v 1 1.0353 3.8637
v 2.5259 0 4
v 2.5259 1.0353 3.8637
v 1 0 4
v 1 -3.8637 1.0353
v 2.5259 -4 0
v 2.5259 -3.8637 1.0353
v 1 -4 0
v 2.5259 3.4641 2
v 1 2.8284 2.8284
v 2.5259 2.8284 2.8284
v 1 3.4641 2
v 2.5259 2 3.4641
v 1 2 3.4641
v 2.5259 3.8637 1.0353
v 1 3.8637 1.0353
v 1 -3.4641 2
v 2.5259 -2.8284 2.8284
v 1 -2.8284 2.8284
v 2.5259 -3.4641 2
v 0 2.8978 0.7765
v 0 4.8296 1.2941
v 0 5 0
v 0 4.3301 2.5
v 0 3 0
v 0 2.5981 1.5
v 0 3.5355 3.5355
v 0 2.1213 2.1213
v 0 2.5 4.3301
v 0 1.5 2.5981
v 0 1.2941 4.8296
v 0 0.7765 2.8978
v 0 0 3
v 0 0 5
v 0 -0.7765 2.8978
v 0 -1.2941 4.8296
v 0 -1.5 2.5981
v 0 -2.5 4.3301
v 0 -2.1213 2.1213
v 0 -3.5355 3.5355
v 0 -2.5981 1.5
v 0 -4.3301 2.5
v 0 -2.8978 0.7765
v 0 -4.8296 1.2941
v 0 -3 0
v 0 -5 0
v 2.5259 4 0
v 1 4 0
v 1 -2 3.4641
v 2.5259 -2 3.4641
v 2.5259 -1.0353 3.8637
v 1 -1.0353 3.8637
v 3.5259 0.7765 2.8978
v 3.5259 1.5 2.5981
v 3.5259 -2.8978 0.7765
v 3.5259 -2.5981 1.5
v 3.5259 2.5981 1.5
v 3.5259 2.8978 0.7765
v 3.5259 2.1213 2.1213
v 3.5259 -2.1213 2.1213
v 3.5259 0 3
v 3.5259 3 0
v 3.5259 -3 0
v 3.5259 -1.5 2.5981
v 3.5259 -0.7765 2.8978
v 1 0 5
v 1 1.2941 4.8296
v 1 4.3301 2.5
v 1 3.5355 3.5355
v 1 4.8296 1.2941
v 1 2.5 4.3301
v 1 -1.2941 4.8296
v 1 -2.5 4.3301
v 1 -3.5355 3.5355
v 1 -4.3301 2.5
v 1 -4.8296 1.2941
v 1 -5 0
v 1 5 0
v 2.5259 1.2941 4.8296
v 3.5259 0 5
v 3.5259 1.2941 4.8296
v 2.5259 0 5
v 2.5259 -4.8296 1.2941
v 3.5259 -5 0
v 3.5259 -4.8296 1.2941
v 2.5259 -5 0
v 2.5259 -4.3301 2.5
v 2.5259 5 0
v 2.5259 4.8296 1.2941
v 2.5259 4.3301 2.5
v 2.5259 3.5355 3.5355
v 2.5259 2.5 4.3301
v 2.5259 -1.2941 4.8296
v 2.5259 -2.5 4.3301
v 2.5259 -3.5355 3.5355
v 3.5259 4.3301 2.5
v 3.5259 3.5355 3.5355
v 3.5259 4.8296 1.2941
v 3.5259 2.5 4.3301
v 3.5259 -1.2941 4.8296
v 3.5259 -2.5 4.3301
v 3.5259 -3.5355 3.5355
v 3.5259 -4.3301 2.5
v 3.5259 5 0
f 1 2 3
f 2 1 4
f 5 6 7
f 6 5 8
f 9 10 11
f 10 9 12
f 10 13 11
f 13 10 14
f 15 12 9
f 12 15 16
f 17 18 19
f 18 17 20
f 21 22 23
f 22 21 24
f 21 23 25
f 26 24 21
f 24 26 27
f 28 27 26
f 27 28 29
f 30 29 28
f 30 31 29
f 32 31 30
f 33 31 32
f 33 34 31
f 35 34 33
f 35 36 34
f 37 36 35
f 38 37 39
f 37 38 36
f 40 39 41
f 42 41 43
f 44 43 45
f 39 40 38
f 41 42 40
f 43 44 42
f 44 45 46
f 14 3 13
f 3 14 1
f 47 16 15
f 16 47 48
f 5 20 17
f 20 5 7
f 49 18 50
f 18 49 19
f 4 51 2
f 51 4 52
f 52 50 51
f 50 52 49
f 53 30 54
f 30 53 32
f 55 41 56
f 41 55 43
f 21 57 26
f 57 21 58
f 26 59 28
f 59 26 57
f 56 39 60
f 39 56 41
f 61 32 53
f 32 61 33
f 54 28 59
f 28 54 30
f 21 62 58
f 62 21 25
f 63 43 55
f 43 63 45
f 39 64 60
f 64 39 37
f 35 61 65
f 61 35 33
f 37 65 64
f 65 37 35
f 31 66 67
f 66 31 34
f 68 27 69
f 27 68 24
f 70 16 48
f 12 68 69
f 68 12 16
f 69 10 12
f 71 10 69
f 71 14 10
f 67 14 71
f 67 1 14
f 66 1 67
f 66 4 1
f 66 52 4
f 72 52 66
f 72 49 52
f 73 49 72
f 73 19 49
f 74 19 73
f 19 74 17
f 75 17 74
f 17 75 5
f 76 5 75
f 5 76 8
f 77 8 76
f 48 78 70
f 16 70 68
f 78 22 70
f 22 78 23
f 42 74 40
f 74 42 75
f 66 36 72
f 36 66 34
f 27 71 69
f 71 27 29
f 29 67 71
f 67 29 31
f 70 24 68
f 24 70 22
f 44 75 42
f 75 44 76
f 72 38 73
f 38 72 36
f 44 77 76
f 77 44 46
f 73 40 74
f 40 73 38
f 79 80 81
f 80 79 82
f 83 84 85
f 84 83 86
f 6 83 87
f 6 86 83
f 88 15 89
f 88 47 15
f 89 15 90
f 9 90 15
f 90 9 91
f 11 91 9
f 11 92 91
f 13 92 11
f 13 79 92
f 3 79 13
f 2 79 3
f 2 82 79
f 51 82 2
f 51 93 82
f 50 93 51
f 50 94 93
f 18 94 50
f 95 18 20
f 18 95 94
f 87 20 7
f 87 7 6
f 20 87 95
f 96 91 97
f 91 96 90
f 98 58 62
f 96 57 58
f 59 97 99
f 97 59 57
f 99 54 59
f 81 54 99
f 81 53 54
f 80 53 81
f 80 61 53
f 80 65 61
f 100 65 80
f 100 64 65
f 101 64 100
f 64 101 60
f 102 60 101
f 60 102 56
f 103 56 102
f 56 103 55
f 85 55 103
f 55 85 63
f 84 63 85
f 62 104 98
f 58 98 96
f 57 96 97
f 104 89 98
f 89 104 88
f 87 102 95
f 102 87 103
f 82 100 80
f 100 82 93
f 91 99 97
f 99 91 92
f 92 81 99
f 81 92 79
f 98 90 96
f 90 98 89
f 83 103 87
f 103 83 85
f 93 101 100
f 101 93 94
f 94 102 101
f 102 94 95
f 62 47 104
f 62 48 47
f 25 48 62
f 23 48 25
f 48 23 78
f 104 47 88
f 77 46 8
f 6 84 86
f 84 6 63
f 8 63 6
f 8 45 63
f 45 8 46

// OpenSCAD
// file: ../build_environments.scad
// build_environments.scad: modules to build level sections
//

module pool(diameter=10.0, wall_height=2.0, step_width=3.0, connections=[])
{
    difference() {
        union() {
        difference() {
            cylinder(h=0.5,r1=diameter+step_width,r2=diameter+step_width,$fn=48);
            translate([0,0,-0.1])
                cylinder(h=0.7,r1=diameter,r2=diameter,$fn=48);
        }
        difference() {
            cylinder(h=wall_height,r1=diameter+step_width+1.0,r2=diameter+step_width+1.0,$fn=48);
            translate([0,0,-0.1])
                cylinder(h=wall_height+0.2,r1=diameter+step_width,r2=diameter+step_width,$fn=48);
        }
        }
    
        for (c = connections)
        {
            rotate([0,90,0]) {
                angle = atan2(c[1],c[0]);
                rotate([-angle,0,0]) {
                    cylinder(h=diameter+5.0,r1=c[2],r2=c[2],$fn=48);
                }
            }
        }
    }
}

module straight(length=10.0, width=2.0, dy1=0.0, dy2=0.0, dz=0.0)
{
    dims = [0, 0, 0, 0, 0, (dz/length)];
    matrix = [
        [ 1, dims[0], dims[1], 0 ],
        [ dims[2], 1, dims[4], 0 ],
        [ dims[5], dims[3], 1, 0 ],
        [ 0, 0, 0, 1 ]
    ];
    multmatrix(matrix)
    difference() {
        translate([dy1,0,0])
        union() {
            rotate([0,90,0]) {
                difference() {
                    cylinder(h=(length-dy1-dy2),r1=width+1.0,r2=width+1.0,$fn=24);
                    translate([0,0,-0.1])
                        cylinder(h=(length-dy1-dy2+0.2),r1=width,r2=width,$fn=24);
                }
                difference() {
                    cylinder(h=1.0,r1=width+2.0,r2=width+2.0,$fn=24);
                    translate([0,0,-0.1])
                        cylinder(h=1.2,r1=width,r2=width,$fn=24);
                }
                translate([0,0,(length-dy1-dy2)-1.0]) {
                    difference() {
                        cylinder(h=1.0,r1=width+2.0,r2=width+2.0,$fn=24);
                        translate([0,0,-0.1])
                            cylinder(h=1.2,r1=width,r2=width,$fn=24);
                    }
                }
            }
        }
        translate([0,0,-(2*width+4.0)/2])
            cube([3*length,3*length,2*width+4.0],center=true);
    }
}

module curve(p0=[0,0], center=[0,0], dir=1, angle=0.0, width=2.0)
{
    radius = sqrt((p0[0]-center[0])*(p0[0]-center[0]) + (p0[1]-center[1])*(p0[1]-center[1]));
    if (dir == 0) {
        difference() {
            rotate([0,0,-90])
            difference() {
                rotate_extrude(angle = angle, convexity = 10, $fn=32)
                    translate([radius, 0, 0])
                        circle(r = width+1.0,$fn=24);
                rotate([0,0,-1.0])
                    rotate_extrude(angle = angle+2.0, convexity = 10, $fn=32)
                        translate([radius, 0, 0])
                            circle(r = width,$fn=24);
            }
            translate([0,0,-(2*width+4.0)/2])
                cube([5*radius,5*radius,2*width+4.0],center=true);
        }
    }
    else {
        difference() {
            rotate([0,0,90])
            difference() {
                rotate_extrude(angle = -angle, convexity = 10, $fn=32)
                    translate([radius, 0, 0])
                        circle(r = width+1.0,$fn=24);
                rotate([0,0,1.0])
                    rotate_extrude(angle = -angle-2.0, convexity = 10, $fn=32)
                        translate([radius, 0, 0])
                            circle(r = width,$fn=24);
            }
            translate([0,0,-(2*width+4.0)/2])
                cube([5*radius,5*radius,2*width+4.0],center=true);
        }
    }

}

// test pool
//pool(diameter=12.0000, wall_height=3.0000, step_width=3.0000, connections=[[0.0000,-26.0000,2.0000], [23.6074,0.0000,2.0000]]);

// test straight, slope
//straight(length=26.0000, width=2.0000, dy1=11.8322, dy2=6.7082, dz=0.0000);
//straight(length=29.1549, width=12.0000, dy1=0.0000, dy2=0.0000, dz=-15.0000);

// test curve
//curve(p0=[23.6074, 0.0000], center=[23.6074, 5.0000], dir=0, angle=60.1011, width=2.0000);
//curve(p0=[33.6426, 12.4219], center=[37.9771, 9.9295], dir=1, angle=120.4627, width=2.0000);
// main file
use <../build_environments.scad>;
straight(length=13.0653, width=3.0000, dy1=0.0000, dy2=9.5394, dz=0.0000);
